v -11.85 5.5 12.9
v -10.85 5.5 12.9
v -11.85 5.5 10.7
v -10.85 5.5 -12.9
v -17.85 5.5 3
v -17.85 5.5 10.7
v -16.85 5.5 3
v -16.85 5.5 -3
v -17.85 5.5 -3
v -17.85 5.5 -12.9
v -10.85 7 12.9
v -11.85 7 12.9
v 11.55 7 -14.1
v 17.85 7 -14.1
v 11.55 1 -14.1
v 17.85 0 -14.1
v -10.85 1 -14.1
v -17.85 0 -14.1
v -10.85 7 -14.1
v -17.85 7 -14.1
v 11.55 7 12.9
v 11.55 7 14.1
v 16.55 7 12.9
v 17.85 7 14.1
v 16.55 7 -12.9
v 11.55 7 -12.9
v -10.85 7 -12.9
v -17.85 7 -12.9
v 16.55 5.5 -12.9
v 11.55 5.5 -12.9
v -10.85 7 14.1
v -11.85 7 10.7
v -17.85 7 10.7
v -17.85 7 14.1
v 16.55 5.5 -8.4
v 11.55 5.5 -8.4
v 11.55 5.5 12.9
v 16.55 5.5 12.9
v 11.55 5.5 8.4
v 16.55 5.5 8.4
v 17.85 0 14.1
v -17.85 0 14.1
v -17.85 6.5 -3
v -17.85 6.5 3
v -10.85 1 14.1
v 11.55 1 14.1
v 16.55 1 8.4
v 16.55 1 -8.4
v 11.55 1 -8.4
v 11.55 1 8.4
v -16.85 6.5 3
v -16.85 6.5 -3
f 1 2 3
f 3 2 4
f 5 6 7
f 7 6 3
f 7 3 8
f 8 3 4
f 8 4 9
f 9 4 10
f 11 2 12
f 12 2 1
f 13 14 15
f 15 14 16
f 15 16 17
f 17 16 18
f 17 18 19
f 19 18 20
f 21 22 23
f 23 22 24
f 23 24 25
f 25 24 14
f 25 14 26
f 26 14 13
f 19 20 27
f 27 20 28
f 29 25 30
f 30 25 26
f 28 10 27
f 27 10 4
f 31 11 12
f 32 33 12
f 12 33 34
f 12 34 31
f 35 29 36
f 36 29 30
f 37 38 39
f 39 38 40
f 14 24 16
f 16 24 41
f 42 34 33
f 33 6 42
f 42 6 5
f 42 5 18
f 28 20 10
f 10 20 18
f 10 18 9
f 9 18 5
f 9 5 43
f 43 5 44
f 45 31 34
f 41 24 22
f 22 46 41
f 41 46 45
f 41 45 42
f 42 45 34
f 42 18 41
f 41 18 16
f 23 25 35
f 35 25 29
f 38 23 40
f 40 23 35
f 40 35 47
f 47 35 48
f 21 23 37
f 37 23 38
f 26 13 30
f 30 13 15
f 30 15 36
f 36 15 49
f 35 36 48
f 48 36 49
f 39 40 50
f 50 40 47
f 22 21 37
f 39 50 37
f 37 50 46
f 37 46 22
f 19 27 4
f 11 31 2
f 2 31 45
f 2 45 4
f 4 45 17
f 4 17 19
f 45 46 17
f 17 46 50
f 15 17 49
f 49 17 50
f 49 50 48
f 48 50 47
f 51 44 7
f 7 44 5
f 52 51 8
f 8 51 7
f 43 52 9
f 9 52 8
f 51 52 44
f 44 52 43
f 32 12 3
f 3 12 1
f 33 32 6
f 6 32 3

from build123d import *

# Parameters (mm, degrees)
SKETCH1_W           = 35.7
SKETCH1_H           = 28.2
BOSS_EXTRUDE1_DEPTH = 7
SKETCH2_W           = 34.4
SKETCH2_H           = 25.8
CUT_EXTRUDE1_DEPTH  = 1.5
CUT_EXTRUDE2_DEPTH  = 4.5
SKETCH4_W           = 22.4
SKETCH4_H           = 1.2
CUT_EXTRUDE3_DEPTH  = 6
SKETCH5_W           = 1
SKETCH5_H           = 6
BOSS_EXTRUDE2_DEPTH = 1
SKETCH6_W           = 6
SKETCH6_H           = 2.2
BOSS_EXTRUDE3_DEPTH = 1.5


with BuildPart() as part:
    # Sketch1 → Boss-Extrude1 (new body)
    with BuildSketch(Plane(origin=(0, 0, 0), x_dir=(1, 0, 0), z_dir=(0, 1, 0))):
        Rectangle(SKETCH1_W, SKETCH1_H)
    extrude(amount=BOSS_EXTRUDE1_DEPTH)

    # Sketch2 → Cut-Extrude1 (cut)
    with BuildSketch(Plane(origin=(0, 7, 0), x_dir=(1, 0, 0), z_dir=(0, 1, 0))):
        with Locations((-0.65, 0)):
            Rectangle(SKETCH2_W, SKETCH2_H)
    extrude(amount=-CUT_EXTRUDE1_DEPTH, mode=Mode.SUBTRACT)

    # Sketch3 → Cut-Extrude2 (cut)
    with BuildSketch(Plane(origin=(0, 5.5, 0), x_dir=(1, 0, 0), z_dir=(0, 1, 0))):
        Polygon((-10.85, 12.9), (-10.85, -12.9), (11.55, -12.9), (11.55, -8.4), (16.55, -8.4), (16.55, 8.4), (11.55, 8.4), (11.55, 12.9), align=None)
    extrude(amount=-CUT_EXTRUDE2_DEPTH, mode=Mode.SUBTRACT)

    # Sketch4 → Cut-Extrude3 (cut)
    with BuildSketch(Plane(origin=(0, 7, 0), x_dir=(1, 0, 0), z_dir=(0, 1, 0))):
        with Locations((0.35, -13.5)):
            Rectangle(SKETCH4_W, SKETCH4_H)
    cut_extrude3 = extrude(amount=-CUT_EXTRUDE3_DEPTH, mode=Mode.SUBTRACT)

    # Mirror1: Cut-Extrude3 across plane
    add(cut_extrude3.mirror(Plane.XY), mode=Mode.SUBTRACT)

    # Sketch5 → Boss-Extrude2 (add)
    with BuildSketch(Plane(origin=(0, 5.5, 0), x_dir=(1, 0, 0), z_dir=(0, 1, 0))):
        with Locations((-17.35, 0)):
            Rectangle(SKETCH5_W, SKETCH5_H)
    extrude(amount=BOSS_EXTRUDE2_DEPTH)

    # Sketch6 → Boss-Extrude3 (add)
    with BuildSketch(Plane(origin=(0, 5.5, 0), x_dir=(1, 0, 0), z_dir=(0, 1, 0))):
        with Locations((-14.85, -11.8)):
            Rectangle(SKETCH6_W, SKETCH6_H)
    extrude(amount=BOSS_EXTRUDE3_DEPTH)


solid = part.part
